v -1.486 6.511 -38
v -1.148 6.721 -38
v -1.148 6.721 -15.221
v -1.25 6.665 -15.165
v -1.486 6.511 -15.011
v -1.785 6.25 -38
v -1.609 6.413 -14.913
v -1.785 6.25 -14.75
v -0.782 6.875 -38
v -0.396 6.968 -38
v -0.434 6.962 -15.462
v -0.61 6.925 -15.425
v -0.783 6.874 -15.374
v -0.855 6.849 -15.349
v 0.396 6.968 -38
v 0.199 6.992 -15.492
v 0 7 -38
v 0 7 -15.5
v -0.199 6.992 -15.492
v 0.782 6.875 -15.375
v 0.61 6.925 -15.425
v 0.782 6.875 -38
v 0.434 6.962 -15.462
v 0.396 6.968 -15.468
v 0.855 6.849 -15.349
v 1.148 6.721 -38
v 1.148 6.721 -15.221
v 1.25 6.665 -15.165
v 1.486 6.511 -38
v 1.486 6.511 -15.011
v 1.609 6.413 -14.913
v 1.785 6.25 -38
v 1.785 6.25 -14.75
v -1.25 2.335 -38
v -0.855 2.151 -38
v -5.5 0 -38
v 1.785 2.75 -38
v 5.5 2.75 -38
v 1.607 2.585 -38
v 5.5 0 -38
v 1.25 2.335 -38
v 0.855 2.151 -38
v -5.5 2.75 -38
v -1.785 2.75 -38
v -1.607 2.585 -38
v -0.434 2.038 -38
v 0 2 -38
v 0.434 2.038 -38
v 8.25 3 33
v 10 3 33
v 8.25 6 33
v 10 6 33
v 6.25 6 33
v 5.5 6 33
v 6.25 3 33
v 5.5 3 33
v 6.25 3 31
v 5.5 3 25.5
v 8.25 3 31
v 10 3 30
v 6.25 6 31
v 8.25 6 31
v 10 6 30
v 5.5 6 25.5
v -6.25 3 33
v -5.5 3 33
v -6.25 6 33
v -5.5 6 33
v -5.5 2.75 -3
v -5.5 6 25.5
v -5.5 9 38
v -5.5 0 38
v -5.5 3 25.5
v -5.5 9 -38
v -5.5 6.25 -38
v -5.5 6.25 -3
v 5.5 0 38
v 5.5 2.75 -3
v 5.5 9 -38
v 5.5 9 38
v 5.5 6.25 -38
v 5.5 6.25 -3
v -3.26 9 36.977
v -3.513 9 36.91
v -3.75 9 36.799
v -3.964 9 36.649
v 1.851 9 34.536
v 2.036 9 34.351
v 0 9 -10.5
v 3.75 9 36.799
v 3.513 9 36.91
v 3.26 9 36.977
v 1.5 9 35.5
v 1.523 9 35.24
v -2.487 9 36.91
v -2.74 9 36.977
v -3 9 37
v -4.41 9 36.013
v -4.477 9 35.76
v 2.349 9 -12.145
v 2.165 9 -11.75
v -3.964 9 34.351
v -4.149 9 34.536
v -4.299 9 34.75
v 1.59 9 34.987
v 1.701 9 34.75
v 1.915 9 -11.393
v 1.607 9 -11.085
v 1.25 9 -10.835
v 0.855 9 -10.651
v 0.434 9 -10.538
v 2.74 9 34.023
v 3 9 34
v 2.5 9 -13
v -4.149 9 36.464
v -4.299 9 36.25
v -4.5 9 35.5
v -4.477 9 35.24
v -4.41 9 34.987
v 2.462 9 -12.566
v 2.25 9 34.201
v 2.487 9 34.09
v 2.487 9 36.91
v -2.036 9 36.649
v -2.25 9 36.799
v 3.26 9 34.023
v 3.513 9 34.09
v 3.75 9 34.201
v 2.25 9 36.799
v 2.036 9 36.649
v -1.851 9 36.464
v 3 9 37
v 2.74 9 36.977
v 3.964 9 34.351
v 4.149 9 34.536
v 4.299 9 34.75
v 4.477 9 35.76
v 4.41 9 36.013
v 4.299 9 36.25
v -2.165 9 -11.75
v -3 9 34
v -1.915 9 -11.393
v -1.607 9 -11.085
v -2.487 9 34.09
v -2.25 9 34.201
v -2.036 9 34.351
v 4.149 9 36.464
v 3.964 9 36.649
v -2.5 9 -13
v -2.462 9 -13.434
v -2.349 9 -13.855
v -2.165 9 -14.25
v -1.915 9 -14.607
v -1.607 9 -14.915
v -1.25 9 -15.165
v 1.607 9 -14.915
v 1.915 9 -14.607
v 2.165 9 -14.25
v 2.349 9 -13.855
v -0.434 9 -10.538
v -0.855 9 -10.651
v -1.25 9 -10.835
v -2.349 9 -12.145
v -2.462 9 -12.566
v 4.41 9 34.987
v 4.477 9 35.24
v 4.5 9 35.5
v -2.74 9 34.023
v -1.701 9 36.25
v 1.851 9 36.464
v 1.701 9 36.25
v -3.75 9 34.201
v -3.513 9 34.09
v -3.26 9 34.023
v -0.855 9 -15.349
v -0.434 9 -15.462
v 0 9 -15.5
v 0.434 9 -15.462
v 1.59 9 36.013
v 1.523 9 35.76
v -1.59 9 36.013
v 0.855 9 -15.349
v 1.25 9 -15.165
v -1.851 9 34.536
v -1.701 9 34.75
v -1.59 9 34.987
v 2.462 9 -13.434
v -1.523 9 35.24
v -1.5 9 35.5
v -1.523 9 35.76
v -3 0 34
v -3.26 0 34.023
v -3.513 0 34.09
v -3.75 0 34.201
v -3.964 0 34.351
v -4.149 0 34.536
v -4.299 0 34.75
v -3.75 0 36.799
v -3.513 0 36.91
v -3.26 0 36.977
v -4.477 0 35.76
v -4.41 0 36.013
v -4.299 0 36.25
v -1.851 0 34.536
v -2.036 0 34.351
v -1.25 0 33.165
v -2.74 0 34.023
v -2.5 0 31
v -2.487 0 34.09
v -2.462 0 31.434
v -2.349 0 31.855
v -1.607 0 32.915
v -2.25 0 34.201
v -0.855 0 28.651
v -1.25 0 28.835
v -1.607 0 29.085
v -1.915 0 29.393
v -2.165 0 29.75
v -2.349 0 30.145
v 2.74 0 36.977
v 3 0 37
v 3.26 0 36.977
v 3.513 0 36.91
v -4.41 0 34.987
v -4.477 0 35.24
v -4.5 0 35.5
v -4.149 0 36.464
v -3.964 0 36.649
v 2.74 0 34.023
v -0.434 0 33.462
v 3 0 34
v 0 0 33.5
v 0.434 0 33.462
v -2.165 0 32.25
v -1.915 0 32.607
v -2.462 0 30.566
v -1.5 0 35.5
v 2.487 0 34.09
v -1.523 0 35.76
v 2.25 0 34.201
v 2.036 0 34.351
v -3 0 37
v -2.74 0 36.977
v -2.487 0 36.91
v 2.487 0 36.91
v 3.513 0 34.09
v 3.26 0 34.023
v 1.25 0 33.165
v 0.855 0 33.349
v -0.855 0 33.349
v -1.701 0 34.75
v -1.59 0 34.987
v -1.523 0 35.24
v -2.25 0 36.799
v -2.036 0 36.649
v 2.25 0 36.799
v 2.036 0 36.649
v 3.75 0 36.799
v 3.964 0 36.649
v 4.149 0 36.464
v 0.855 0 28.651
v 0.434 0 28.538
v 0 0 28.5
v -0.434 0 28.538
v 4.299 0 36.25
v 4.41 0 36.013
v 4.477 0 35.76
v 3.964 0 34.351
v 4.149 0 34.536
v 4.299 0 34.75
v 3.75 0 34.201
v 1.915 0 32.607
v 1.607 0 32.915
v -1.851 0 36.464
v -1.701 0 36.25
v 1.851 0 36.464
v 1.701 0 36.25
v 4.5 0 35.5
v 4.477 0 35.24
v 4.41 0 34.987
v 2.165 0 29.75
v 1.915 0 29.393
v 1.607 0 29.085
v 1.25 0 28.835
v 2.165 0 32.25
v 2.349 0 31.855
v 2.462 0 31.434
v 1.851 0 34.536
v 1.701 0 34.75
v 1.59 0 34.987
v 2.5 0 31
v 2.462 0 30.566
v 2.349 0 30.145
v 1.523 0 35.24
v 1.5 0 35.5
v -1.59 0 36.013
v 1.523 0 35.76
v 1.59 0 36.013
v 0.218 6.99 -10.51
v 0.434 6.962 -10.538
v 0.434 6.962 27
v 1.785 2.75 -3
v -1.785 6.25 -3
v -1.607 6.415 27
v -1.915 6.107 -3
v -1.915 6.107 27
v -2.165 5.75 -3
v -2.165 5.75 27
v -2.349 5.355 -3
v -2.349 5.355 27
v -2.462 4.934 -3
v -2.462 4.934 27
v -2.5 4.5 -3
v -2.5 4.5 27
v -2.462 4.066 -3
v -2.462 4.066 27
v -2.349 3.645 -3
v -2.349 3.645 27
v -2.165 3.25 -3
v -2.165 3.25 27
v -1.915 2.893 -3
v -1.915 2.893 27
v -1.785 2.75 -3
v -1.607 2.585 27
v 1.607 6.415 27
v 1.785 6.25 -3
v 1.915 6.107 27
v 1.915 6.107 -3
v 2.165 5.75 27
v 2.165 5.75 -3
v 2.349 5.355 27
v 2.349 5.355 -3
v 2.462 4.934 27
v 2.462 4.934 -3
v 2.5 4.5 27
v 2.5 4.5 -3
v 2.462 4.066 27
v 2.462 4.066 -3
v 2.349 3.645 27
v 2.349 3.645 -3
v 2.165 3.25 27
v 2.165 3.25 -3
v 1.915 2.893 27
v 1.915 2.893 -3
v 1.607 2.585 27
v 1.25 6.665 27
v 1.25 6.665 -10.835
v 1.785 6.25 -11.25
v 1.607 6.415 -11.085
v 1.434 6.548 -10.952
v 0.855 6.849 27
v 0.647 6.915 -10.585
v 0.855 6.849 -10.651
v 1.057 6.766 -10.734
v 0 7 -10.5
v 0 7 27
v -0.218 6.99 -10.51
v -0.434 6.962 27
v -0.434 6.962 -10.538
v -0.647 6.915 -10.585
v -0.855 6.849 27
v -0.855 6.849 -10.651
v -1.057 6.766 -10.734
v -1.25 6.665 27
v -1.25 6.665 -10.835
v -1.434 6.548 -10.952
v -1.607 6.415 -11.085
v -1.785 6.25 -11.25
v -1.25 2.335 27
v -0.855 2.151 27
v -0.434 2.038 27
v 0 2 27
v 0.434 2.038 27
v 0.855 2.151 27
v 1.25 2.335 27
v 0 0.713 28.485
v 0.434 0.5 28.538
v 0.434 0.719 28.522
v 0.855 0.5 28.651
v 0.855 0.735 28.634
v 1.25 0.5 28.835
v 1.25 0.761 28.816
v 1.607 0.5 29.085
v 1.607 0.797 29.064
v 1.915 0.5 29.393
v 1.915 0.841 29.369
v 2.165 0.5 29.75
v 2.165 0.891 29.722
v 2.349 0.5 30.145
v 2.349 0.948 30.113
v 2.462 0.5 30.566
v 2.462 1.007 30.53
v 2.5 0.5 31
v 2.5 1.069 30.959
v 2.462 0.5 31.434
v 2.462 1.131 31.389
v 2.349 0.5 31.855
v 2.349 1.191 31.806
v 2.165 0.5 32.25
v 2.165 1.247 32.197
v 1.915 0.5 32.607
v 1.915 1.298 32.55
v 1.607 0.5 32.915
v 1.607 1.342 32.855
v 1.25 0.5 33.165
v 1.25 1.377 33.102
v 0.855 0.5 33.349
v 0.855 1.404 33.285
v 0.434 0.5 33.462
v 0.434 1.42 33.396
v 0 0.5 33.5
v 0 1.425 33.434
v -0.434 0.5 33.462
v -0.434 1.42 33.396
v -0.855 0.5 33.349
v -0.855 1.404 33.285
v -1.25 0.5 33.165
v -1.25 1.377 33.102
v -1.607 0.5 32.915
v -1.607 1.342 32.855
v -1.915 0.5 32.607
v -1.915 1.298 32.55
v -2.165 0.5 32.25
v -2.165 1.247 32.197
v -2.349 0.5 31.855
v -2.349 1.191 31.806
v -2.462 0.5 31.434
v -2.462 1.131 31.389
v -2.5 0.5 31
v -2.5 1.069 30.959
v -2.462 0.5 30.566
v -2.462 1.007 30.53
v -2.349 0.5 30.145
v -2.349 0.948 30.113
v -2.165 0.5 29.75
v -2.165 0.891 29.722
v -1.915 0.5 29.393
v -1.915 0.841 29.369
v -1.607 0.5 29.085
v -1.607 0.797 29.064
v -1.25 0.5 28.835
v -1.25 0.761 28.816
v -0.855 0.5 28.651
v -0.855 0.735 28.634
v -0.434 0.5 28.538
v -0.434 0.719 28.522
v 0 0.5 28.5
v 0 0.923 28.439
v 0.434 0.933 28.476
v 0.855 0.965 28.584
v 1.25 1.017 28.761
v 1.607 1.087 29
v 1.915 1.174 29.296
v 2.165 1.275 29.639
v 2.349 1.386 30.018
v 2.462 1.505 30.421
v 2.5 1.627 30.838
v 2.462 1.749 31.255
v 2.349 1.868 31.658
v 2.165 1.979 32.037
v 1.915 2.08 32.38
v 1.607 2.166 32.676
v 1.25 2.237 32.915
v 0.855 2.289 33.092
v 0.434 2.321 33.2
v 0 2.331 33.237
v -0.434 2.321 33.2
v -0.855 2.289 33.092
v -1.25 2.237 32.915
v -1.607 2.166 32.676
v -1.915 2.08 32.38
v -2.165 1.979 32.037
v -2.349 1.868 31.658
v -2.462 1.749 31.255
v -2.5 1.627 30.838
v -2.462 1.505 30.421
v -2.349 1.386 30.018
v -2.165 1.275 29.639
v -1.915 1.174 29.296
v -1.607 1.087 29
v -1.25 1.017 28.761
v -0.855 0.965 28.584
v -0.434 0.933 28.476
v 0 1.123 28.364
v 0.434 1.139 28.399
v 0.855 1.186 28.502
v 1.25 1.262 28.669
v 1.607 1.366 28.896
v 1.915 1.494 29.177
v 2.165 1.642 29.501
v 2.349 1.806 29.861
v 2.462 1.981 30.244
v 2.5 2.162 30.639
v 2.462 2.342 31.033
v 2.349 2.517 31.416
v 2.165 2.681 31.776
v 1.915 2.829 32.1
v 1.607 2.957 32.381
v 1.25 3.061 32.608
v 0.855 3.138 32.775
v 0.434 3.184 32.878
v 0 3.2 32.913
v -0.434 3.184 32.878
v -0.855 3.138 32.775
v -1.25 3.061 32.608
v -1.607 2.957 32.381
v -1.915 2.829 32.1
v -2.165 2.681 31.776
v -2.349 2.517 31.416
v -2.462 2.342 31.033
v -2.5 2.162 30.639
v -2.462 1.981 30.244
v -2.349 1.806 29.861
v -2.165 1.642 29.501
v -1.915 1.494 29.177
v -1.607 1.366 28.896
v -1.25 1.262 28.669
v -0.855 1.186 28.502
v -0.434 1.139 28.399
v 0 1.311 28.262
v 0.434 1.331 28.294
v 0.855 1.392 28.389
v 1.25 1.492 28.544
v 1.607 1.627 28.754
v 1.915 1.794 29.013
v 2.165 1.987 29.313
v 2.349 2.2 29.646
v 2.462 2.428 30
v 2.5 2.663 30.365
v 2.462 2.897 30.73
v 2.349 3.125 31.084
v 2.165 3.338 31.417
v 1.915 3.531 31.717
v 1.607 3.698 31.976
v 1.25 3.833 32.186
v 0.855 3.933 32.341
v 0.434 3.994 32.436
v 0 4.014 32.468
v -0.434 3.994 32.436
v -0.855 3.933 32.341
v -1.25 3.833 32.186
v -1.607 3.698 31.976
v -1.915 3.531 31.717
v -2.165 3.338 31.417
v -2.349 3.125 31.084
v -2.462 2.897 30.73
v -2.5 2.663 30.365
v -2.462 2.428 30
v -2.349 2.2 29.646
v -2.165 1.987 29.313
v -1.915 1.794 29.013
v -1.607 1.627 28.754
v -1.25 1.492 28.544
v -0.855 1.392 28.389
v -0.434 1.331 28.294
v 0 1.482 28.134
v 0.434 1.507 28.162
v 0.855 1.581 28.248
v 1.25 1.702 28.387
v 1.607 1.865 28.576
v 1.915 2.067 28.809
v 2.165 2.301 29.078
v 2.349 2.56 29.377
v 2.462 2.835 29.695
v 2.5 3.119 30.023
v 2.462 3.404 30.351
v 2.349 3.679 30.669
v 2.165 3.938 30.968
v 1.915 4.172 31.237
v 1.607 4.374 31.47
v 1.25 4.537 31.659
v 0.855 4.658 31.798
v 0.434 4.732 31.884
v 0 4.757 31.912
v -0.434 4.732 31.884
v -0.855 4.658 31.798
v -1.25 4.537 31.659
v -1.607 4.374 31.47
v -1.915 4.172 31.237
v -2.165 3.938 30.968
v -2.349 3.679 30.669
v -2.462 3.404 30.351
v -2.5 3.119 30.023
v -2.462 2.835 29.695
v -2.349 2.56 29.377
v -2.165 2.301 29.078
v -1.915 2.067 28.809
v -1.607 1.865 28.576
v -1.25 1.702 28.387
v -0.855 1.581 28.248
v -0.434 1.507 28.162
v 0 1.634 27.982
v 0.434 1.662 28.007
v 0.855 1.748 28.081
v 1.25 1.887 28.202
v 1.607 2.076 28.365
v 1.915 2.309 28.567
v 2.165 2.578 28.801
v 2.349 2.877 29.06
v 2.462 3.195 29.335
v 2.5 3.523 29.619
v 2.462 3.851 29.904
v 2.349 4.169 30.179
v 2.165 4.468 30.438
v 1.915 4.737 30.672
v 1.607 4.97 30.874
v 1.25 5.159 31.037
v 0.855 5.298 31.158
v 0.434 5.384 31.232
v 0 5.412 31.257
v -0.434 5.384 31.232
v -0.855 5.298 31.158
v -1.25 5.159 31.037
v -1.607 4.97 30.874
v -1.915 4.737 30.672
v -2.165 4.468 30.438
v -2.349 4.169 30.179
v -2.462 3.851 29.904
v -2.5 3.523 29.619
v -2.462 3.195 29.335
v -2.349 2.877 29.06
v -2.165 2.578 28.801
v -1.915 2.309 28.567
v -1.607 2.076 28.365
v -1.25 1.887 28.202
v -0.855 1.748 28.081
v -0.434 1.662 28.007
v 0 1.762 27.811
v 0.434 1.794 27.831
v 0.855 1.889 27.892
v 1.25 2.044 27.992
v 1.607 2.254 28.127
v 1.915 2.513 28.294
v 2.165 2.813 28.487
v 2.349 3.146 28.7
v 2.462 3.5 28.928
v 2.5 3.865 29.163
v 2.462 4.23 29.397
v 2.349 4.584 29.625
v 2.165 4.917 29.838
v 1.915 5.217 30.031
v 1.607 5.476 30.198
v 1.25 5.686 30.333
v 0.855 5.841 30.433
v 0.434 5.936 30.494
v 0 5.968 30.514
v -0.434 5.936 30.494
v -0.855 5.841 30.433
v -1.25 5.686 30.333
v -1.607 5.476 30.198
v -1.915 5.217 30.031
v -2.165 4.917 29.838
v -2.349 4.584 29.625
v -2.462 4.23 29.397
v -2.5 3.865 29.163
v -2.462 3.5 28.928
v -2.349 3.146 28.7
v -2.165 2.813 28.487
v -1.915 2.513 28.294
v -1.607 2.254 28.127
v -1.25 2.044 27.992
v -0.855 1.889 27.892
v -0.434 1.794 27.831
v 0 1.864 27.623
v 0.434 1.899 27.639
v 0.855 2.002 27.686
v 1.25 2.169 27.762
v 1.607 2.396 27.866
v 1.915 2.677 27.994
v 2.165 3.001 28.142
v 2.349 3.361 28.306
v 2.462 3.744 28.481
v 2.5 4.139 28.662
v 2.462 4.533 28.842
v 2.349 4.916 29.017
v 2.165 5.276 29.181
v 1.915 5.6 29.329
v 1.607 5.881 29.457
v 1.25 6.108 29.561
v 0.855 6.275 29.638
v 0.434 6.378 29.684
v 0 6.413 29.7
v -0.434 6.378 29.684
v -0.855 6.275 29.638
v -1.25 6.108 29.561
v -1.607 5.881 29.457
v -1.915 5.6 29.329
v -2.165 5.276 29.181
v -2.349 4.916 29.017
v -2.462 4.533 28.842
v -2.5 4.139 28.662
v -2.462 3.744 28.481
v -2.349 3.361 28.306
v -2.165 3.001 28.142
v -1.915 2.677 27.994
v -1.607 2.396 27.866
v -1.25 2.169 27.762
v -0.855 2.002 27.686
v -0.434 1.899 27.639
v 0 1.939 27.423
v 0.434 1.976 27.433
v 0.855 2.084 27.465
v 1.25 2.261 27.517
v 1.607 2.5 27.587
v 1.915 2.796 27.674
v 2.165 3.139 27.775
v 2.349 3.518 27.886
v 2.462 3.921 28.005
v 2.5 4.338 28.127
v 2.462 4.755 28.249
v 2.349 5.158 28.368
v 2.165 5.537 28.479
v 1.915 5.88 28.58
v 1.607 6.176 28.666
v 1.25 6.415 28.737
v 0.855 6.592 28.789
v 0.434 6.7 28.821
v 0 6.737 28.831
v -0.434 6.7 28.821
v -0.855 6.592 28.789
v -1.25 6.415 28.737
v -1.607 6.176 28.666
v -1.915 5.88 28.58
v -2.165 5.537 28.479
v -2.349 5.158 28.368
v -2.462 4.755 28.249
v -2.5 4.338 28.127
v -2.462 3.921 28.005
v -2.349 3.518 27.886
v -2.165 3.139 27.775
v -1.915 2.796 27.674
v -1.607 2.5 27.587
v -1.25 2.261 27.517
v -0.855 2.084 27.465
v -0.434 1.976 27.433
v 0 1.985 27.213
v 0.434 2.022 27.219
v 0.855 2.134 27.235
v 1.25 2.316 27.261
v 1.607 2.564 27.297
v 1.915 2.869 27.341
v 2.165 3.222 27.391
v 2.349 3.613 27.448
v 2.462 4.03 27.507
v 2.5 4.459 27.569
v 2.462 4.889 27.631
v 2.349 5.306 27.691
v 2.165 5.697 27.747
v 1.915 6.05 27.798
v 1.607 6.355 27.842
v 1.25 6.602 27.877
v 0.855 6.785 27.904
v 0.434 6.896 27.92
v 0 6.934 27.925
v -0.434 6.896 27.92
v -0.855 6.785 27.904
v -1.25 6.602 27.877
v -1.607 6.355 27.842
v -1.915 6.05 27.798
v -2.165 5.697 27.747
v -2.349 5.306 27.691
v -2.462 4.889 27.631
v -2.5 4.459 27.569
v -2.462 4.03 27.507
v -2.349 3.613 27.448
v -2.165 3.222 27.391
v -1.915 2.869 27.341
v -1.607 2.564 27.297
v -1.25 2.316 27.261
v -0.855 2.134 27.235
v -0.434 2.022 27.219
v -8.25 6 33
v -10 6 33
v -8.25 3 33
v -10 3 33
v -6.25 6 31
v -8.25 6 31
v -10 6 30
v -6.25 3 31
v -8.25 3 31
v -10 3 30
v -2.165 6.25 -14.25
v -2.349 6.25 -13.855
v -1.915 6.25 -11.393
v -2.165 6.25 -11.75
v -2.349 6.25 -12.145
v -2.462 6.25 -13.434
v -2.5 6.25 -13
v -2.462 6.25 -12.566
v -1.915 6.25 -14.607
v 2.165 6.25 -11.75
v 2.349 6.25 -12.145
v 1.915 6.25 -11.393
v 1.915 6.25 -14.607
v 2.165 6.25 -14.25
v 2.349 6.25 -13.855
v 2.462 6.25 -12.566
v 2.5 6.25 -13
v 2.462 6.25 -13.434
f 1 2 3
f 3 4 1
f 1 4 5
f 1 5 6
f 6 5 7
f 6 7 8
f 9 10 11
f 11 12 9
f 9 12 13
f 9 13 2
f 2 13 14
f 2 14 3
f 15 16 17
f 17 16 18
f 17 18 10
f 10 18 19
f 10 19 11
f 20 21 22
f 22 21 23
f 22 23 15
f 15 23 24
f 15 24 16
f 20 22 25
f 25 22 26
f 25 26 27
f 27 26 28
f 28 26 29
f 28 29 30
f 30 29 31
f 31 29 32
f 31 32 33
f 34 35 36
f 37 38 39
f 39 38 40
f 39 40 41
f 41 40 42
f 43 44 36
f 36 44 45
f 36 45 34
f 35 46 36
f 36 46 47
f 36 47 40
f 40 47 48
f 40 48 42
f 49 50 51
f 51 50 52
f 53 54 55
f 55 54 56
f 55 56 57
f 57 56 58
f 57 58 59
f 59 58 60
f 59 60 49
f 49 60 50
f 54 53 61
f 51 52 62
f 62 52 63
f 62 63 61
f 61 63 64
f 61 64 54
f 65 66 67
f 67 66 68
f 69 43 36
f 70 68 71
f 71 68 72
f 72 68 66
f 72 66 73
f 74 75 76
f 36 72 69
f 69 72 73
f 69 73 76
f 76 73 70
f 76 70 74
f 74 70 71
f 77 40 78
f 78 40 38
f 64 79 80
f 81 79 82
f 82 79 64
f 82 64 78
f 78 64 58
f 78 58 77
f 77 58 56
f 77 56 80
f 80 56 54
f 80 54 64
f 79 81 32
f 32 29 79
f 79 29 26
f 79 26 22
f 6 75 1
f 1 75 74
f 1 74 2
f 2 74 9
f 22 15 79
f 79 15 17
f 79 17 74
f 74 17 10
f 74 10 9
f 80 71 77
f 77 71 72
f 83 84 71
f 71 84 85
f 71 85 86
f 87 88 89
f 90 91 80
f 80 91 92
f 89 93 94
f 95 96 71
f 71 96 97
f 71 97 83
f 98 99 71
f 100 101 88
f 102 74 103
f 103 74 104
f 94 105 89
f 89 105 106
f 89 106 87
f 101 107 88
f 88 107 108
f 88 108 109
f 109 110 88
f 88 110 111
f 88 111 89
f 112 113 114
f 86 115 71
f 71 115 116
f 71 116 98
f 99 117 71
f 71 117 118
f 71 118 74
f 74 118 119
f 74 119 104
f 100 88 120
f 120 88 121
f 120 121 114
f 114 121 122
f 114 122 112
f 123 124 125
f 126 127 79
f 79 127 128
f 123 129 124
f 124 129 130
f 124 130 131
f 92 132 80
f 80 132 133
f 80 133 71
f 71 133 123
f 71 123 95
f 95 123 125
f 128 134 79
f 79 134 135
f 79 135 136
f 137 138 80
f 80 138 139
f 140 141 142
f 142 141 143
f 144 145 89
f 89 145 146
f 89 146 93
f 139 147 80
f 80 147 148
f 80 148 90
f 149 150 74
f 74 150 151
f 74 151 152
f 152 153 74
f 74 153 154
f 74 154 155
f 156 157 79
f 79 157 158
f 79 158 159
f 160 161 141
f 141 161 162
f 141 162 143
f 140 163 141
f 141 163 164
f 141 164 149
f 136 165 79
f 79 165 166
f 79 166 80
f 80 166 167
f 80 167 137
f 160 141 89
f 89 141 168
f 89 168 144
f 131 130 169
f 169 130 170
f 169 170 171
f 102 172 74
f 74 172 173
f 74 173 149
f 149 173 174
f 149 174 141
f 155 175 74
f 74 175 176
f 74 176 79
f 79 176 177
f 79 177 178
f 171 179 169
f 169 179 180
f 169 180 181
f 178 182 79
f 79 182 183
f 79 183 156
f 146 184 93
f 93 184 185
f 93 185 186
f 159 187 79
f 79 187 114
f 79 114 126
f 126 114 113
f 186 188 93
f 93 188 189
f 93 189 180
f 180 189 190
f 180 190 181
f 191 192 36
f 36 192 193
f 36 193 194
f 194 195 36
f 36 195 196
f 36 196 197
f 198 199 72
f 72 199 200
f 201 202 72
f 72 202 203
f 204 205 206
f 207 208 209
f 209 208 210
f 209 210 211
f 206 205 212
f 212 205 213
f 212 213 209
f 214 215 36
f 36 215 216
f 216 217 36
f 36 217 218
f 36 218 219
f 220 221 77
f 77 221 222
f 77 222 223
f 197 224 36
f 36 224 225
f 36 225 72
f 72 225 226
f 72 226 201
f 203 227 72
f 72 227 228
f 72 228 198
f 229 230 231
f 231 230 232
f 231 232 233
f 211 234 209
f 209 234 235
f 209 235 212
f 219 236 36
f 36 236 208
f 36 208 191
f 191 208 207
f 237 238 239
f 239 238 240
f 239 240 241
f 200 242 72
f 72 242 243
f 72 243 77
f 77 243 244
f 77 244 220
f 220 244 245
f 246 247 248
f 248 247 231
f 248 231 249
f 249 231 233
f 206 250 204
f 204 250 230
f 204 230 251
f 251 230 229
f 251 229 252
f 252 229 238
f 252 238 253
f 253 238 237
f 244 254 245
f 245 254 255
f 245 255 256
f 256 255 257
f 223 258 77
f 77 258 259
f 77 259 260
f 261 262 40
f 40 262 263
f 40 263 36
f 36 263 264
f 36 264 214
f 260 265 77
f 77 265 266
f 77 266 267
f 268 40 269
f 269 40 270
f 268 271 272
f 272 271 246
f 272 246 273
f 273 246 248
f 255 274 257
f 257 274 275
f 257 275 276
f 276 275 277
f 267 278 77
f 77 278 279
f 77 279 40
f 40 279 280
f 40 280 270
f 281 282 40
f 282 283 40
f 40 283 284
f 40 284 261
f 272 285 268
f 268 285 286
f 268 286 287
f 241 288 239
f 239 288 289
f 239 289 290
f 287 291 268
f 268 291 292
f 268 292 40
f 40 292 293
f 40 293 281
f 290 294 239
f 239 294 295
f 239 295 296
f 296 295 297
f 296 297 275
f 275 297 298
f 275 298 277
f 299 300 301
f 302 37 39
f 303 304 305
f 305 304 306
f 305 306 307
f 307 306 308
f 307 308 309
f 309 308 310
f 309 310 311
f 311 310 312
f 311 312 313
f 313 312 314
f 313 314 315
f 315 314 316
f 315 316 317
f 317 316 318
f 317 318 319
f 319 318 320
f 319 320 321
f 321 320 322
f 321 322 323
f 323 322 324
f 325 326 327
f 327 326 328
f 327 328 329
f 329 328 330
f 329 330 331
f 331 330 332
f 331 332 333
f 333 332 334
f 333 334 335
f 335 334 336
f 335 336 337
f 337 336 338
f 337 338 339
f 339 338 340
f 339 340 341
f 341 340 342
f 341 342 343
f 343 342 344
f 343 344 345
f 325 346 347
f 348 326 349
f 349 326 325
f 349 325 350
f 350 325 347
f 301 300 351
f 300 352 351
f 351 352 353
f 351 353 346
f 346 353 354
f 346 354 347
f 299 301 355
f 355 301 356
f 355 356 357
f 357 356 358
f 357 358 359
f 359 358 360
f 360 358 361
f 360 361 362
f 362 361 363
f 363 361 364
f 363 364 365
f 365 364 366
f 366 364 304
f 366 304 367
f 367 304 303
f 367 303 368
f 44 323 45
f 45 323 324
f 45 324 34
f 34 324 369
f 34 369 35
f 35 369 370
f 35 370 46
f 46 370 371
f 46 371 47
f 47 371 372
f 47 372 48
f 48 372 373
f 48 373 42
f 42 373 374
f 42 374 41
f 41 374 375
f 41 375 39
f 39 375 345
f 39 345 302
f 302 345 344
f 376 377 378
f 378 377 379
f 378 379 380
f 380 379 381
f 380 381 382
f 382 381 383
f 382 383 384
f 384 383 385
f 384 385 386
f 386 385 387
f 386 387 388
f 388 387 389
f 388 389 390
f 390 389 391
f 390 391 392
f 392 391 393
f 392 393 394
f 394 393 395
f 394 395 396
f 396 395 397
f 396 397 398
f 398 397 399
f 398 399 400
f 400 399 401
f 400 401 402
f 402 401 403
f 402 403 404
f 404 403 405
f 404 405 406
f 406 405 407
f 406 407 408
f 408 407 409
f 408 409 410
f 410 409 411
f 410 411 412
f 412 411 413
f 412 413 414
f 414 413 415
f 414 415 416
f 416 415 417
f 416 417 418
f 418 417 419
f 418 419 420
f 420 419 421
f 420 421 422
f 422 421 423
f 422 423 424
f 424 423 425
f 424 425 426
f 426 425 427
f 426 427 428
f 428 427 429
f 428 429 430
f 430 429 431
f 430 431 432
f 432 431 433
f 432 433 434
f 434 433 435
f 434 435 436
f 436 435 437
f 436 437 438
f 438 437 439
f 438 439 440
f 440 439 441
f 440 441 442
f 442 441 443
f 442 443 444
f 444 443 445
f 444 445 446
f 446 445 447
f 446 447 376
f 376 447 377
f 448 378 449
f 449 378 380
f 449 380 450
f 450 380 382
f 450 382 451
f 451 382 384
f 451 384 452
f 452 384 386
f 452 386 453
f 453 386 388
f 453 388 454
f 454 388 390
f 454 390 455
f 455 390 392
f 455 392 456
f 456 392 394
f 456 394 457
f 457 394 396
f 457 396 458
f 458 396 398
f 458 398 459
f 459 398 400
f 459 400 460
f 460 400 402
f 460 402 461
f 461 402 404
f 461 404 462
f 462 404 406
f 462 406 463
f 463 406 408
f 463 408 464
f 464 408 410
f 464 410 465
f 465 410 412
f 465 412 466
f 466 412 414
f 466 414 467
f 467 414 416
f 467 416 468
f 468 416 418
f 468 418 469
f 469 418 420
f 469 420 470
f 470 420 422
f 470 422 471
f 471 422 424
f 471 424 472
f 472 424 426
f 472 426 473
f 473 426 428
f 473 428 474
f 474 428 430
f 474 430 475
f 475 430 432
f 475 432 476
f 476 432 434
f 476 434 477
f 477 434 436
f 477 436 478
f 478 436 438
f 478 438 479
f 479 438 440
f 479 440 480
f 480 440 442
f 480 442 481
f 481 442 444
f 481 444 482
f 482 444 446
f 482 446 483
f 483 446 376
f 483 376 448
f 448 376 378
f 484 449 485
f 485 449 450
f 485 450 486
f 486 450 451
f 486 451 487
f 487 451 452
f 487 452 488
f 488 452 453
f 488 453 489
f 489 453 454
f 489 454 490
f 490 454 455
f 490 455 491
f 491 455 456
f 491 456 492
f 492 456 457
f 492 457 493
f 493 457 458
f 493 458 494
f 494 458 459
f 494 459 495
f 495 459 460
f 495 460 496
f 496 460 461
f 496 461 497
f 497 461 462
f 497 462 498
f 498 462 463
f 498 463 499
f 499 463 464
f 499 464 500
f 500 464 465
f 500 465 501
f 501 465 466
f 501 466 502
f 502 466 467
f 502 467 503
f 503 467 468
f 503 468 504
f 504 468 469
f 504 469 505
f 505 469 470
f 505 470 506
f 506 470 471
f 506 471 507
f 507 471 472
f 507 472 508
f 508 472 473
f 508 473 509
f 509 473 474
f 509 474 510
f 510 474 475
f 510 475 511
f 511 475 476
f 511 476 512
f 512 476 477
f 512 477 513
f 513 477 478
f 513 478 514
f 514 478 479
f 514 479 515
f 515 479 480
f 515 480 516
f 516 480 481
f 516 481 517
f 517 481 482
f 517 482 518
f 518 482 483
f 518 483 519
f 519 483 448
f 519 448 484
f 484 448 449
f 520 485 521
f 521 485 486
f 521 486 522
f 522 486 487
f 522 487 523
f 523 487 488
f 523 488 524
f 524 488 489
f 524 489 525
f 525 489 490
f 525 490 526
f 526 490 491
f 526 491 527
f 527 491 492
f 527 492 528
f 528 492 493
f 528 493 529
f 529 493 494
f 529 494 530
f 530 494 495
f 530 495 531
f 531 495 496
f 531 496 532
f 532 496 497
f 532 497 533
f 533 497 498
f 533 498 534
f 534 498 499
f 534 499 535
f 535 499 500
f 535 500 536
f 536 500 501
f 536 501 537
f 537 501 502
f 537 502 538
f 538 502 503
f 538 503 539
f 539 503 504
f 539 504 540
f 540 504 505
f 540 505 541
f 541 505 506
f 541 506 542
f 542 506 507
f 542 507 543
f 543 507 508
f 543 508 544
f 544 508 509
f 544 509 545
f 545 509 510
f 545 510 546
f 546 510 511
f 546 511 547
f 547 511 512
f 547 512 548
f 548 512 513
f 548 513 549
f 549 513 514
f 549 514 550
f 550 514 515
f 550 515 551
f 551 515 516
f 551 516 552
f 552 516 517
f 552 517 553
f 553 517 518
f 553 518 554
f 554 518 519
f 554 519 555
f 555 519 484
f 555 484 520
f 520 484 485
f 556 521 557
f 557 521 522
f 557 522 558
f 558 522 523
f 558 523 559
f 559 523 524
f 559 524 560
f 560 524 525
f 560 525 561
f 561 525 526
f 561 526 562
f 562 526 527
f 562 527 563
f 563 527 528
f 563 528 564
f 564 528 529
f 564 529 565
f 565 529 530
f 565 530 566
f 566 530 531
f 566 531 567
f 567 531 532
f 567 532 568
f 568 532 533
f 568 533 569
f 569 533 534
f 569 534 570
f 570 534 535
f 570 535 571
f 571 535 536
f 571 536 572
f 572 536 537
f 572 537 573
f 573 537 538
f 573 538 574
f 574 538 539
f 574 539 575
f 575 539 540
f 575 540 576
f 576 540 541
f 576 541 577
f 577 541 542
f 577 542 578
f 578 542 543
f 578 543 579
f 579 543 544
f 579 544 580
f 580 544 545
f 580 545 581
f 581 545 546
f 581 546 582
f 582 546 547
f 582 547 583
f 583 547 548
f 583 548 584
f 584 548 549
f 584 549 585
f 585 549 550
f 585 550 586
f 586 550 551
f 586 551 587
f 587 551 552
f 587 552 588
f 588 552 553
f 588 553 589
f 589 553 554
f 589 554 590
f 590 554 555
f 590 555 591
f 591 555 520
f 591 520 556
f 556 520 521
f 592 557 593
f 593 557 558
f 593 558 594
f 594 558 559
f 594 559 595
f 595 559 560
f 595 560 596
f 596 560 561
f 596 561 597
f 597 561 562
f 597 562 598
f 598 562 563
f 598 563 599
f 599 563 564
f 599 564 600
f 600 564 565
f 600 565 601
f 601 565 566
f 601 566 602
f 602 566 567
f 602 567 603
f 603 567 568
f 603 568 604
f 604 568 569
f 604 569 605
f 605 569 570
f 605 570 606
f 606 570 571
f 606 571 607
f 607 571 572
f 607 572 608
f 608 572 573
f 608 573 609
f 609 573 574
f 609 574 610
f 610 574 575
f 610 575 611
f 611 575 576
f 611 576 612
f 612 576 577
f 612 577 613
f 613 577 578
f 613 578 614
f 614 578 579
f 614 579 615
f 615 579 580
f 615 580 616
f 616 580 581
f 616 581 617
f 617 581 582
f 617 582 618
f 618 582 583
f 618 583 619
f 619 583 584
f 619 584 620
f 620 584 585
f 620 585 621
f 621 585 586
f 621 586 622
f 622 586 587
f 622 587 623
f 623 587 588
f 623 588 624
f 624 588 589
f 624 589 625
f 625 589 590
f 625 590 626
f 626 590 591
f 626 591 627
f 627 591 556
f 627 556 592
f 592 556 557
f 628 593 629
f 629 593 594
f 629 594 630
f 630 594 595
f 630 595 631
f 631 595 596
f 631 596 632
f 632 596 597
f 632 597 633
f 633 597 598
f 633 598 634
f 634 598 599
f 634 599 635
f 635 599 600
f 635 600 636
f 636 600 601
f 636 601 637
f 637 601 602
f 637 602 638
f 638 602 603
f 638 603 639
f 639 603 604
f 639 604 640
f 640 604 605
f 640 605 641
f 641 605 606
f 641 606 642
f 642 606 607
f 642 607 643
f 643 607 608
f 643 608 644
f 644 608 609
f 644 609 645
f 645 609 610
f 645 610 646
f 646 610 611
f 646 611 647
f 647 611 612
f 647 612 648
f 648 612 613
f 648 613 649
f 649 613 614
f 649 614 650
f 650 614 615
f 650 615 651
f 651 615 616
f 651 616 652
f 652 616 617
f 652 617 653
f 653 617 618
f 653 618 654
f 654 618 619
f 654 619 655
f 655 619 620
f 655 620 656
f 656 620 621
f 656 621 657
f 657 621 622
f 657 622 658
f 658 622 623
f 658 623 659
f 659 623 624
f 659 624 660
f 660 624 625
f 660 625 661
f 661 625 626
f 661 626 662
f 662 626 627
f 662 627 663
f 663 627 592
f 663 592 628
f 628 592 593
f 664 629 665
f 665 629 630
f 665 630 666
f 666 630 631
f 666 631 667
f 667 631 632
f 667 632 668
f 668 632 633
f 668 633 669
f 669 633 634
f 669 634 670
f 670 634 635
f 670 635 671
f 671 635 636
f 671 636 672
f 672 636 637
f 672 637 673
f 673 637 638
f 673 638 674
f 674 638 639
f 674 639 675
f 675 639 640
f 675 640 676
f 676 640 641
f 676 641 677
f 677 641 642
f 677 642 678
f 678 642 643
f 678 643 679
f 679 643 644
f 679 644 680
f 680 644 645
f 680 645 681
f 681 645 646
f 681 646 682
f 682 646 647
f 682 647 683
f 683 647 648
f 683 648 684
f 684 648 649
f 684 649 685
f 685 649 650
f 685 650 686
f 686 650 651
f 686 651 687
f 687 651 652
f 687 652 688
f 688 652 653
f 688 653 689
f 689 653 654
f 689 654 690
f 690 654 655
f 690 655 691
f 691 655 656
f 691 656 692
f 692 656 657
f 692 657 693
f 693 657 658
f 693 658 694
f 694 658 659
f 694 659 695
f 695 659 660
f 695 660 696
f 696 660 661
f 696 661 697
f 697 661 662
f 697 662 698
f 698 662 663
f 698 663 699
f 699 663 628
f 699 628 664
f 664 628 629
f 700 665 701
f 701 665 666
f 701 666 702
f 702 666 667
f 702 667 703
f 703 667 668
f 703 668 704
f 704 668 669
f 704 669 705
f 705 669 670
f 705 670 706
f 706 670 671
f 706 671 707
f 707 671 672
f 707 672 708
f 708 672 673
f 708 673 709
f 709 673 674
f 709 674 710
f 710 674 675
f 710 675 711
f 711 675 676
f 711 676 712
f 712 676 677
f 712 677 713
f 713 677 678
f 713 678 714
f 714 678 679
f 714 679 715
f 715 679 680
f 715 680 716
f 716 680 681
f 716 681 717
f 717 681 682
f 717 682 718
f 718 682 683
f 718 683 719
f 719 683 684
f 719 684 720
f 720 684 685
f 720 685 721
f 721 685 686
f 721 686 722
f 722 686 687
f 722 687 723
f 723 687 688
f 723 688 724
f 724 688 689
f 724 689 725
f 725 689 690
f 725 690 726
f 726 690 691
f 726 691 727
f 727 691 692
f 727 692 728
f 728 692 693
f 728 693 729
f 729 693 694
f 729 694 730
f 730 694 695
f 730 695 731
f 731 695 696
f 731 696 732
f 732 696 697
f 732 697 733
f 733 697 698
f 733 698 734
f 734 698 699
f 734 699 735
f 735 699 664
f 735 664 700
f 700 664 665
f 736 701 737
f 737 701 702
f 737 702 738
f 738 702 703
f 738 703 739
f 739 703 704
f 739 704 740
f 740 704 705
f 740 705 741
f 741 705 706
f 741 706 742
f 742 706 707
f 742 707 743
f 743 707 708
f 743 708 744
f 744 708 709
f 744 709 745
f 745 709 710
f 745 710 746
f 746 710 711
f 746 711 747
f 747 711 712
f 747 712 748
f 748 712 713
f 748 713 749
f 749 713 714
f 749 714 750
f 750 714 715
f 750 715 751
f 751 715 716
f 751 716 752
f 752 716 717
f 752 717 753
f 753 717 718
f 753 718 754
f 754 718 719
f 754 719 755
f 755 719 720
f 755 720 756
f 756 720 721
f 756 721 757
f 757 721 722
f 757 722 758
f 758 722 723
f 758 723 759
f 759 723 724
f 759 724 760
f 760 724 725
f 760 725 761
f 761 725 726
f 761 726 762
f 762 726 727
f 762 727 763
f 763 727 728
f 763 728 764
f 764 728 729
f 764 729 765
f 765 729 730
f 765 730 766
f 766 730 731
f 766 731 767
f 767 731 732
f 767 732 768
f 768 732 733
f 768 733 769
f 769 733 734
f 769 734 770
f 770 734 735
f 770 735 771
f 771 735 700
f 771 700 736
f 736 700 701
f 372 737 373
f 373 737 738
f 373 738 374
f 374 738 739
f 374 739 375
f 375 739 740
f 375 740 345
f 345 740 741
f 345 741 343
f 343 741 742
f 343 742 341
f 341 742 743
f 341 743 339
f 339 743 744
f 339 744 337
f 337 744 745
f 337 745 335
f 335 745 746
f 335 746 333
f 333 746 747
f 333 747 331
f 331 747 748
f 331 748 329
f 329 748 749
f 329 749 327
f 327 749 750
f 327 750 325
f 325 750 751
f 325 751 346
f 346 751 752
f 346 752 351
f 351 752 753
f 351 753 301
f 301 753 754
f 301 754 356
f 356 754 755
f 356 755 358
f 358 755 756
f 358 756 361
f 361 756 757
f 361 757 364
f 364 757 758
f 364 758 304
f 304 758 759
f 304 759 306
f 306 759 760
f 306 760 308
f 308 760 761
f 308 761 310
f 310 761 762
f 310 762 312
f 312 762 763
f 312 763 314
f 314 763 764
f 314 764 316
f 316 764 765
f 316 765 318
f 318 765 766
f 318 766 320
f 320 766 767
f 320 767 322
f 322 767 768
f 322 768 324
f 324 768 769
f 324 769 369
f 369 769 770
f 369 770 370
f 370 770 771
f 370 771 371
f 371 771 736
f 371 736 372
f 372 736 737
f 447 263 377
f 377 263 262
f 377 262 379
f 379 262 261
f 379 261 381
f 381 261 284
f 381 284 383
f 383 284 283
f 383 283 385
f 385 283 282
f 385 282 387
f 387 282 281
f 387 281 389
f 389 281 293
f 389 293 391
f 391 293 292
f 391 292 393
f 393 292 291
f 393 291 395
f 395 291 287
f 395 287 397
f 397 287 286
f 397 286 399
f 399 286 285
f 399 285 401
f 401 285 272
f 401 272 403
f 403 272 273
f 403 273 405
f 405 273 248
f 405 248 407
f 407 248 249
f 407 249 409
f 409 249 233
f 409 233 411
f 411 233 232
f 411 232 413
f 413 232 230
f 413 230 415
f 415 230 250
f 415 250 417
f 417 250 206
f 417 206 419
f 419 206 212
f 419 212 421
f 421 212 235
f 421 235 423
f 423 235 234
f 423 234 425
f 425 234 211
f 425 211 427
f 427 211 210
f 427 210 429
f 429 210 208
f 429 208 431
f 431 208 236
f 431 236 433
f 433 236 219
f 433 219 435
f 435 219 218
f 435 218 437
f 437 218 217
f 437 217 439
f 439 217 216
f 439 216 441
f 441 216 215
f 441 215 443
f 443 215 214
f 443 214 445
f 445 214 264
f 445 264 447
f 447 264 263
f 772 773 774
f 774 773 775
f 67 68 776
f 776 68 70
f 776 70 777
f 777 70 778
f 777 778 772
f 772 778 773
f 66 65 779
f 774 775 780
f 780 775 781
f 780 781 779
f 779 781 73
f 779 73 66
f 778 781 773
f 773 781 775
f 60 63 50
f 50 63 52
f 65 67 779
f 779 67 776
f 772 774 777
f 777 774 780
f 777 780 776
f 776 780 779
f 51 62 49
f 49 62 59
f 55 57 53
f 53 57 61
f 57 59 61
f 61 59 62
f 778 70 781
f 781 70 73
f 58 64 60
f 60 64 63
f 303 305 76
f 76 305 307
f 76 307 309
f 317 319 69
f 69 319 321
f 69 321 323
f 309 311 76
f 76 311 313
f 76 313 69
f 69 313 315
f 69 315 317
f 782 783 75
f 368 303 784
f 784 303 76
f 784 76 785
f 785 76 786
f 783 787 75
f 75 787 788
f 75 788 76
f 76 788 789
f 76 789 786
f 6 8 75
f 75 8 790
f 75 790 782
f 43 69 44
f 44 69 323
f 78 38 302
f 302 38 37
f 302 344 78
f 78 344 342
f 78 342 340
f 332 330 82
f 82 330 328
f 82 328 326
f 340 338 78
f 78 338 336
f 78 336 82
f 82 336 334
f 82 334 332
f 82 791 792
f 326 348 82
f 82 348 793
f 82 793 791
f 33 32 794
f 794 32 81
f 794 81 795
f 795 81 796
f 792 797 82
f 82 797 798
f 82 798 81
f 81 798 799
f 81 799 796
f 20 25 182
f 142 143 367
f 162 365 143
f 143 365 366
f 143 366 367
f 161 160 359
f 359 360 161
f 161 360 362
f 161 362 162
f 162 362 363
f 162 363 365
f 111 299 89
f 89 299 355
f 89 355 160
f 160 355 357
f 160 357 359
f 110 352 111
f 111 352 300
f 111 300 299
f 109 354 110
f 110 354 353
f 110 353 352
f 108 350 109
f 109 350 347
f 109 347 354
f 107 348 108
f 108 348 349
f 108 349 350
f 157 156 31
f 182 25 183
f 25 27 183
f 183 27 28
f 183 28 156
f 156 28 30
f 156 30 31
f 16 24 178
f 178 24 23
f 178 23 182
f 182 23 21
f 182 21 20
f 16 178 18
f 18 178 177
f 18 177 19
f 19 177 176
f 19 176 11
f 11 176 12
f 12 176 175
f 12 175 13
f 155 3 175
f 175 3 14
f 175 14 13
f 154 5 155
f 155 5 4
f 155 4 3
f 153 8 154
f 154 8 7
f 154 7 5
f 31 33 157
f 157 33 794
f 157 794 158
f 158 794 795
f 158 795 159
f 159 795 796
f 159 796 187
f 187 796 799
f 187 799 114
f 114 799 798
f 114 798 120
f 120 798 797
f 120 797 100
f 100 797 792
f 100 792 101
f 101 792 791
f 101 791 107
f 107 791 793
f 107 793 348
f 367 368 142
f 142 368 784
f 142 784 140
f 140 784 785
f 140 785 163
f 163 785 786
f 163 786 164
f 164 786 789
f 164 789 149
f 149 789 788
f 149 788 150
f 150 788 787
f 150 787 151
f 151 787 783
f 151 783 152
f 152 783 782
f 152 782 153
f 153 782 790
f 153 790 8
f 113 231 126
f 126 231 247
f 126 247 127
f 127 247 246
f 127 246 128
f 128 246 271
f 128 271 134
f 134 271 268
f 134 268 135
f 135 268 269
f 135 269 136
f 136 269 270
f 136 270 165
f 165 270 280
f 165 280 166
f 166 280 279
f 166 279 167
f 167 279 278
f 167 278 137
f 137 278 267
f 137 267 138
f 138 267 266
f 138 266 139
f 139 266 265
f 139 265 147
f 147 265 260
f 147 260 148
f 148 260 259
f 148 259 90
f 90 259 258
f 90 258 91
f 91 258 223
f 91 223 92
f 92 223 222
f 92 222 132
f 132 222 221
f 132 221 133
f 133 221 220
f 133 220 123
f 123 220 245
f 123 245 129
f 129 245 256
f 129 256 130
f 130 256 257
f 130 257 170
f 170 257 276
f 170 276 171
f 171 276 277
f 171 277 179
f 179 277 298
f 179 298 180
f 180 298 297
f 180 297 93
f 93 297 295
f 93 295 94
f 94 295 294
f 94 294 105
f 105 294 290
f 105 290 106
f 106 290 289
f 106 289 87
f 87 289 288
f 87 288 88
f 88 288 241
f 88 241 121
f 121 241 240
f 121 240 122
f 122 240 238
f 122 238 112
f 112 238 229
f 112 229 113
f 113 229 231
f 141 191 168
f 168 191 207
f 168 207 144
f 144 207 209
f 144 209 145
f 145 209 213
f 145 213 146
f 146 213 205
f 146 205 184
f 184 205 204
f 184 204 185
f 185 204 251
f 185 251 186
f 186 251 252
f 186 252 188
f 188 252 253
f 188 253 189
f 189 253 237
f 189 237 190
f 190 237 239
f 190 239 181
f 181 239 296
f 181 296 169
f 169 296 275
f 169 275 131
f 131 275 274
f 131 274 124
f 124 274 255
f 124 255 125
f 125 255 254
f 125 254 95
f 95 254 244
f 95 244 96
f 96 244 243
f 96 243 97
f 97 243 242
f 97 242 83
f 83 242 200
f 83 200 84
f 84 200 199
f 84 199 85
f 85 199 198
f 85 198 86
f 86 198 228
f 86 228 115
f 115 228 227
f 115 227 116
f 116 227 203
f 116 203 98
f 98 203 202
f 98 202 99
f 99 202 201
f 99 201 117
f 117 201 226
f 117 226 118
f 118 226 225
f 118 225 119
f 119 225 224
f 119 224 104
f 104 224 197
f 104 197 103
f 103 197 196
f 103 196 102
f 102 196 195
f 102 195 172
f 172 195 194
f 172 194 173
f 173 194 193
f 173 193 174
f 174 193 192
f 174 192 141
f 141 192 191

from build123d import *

# Parameters (mm, degrees)
SKETCH1_W           = 11
SKETCH1_H           = 76
BOSS_EXTRUDE1_DEPTH = 9
SKETCH4_R           = 2.5
SKETCH5_W           = 3
SKETCH5_H           = 3
BOSS_EXTRUDE2_DEPTH = 4.5
SKETCH6_W           = 2
SKETCH6_H           = 3
CUT_EXTRUDE2_DEPTH  = 2
BOSS_EXTRUDE3_DEPTH = 3
SKETCH10_W          = 11
SKETCH10_H          = 3.5
CUT_EXTRUDE5_DEPTH  = 35
CUT_EXTRUDE6_REACH  = 42.311
SKETCH11_R          = 2.5
CUT_EXTRUDE8_REACH  = 42.311
SKETCH8_R           = 1.5


with BuildPart() as part:
    # Sketch1 → Boss-Extrude1 (new body)
    with BuildSketch(Plane(origin=(0, 0, 0), x_dir=(1, 0, 0), z_dir=(0, 1, 0))):
        Rectangle(SKETCH1_W, SKETCH1_H)
    extrude(amount=BOSS_EXTRUDE1_DEPTH)

    # Cut-Sweep2: sweep along a path in Sketch3
    with BuildLine(Plane.ZY) as cut_sweep2_path:
        Line((-38, 4.5), (27, 4.5))
        ThreePointArc((27, 4.5), (29.828427125, 3.328427125), (31, 0.5))
        Line((31, 0.5), (31, 0))
    # Sketch4 → Cut-Sweep2 (sweep, cut)
    with BuildSketch(Plane(origin=(0, 0, -38), x_dir=(-1, 0, 0), z_dir=(0, 0, -1))):
        with Locations((0, 4.5)):
            Circle(SKETCH4_R)
    sweep(path=cut_sweep2_path.line, mode=Mode.SUBTRACT)

    # Sketch5 → Boss-Extrude2 (add)
    with BuildSketch(Plane.ZY.offset(5.5)):
        with Locations((31.5, 4.5)):
            Rectangle(SKETCH5_W, SKETCH5_H)
    boss_extrude2 = extrude(amount=BOSS_EXTRUDE2_DEPTH)

    # Mirror1: Boss-Extrude2 across plane
    add(boss_extrude2.mirror(Plane.ZY))

    # Sketch6 → Cut-Extrude2 (cut)
    with BuildSketch(Plane.XY.offset(33)):
        with Locations((-7.25, 4.5)):
            Rectangle(SKETCH6_W, SKETCH6_H)
    cut_extrude2 = extrude(amount=-CUT_EXTRUDE2_DEPTH, mode=Mode.SUBTRACT)

    # Mirror2: Cut-Extrude2 across plane
    add(cut_extrude2.mirror(Plane.ZY), mode=Mode.SUBTRACT)

    # Sketch7 → Boss-Extrude3 (add)
    with BuildSketch(Plane(origin=(0, 6, 0), x_dir=(1, 0, 0), z_dir=(0, 1, 0))):
        Polygon((-10, -30), (-5.5, -25.5), (-5.5, -30), align=None)
    boss_extrude3 = extrude(amount=-BOSS_EXTRUDE3_DEPTH)

    # Mirror3: Boss-Extrude3 across plane
    add(boss_extrude3.mirror(Plane.ZY))

    # Sketch10 → Cut-Extrude5 (cut)
    with BuildSketch(Plane(origin=(0, 0, -38), x_dir=(-1, 0, 0), z_dir=(0, 0, -1))):
        with Locations((0, 4.5)):
            Rectangle(SKETCH10_W, SKETCH10_H)
    extrude(amount=-CUT_EXTRUDE5_DEPTH, mode=Mode.SUBTRACT)

    # Sketch11 → Cut-Extrude6 (cut, up to next)
    with BuildSketch(Plane(origin=(0, 9, 0), x_dir=(1, 0, 0), z_dir=(0, 1, 0)), mode=Mode.PRIVATE) as cut_extrude6_sk1:
        with Locations(Location((0, 13, 0), (0, 0, 270))):
            Circle(SKETCH11_R)
    cut_extrude6_tool1 = extrude(cut_extrude6_sk1.sketch, amount=-CUT_EXTRUDE6_REACH, mode=Mode.PRIVATE) & part.part
    add(cut_extrude6_tool1.solids().sort_by_distance((0, 9, -13))[0], mode=Mode.SUBTRACT)

    # Sketch8 → Cut-Extrude8 (cut, up to next)
    with BuildSketch(Plane.XZ, mode=Mode.PRIVATE) as cut_extrude8_sk1:
        with Locations(Location((-3, 35.5, 0), (0, 0, 270))):
            Circle(SKETCH8_R)
    cut_extrude8_tool1 = extrude(cut_extrude8_sk1.sketch, amount=-CUT_EXTRUDE8_REACH, mode=Mode.PRIVATE) & part.part
    # Sketch8 → Cut-Extrude8 (cut, up to next)
    with BuildSketch(Plane.XZ, mode=Mode.PRIVATE) as cut_extrude8_sk2:
        with Locations(Location((3, 35.5, 0), (0, 0, 90))):
            Circle(SKETCH8_R)
    cut_extrude8_tool2 = extrude(cut_extrude8_sk2.sketch, amount=-CUT_EXTRUDE8_REACH, mode=Mode.PRIVATE) & part.part
    add(cut_extrude8_tool1.solids().sort_by_distance((-3, 0, 35.5))[0], mode=Mode.SUBTRACT)
    add(cut_extrude8_tool2.solids().sort_by_distance((3, 0, 35.5))[0], mode=Mode.SUBTRACT)


solid = part.part
